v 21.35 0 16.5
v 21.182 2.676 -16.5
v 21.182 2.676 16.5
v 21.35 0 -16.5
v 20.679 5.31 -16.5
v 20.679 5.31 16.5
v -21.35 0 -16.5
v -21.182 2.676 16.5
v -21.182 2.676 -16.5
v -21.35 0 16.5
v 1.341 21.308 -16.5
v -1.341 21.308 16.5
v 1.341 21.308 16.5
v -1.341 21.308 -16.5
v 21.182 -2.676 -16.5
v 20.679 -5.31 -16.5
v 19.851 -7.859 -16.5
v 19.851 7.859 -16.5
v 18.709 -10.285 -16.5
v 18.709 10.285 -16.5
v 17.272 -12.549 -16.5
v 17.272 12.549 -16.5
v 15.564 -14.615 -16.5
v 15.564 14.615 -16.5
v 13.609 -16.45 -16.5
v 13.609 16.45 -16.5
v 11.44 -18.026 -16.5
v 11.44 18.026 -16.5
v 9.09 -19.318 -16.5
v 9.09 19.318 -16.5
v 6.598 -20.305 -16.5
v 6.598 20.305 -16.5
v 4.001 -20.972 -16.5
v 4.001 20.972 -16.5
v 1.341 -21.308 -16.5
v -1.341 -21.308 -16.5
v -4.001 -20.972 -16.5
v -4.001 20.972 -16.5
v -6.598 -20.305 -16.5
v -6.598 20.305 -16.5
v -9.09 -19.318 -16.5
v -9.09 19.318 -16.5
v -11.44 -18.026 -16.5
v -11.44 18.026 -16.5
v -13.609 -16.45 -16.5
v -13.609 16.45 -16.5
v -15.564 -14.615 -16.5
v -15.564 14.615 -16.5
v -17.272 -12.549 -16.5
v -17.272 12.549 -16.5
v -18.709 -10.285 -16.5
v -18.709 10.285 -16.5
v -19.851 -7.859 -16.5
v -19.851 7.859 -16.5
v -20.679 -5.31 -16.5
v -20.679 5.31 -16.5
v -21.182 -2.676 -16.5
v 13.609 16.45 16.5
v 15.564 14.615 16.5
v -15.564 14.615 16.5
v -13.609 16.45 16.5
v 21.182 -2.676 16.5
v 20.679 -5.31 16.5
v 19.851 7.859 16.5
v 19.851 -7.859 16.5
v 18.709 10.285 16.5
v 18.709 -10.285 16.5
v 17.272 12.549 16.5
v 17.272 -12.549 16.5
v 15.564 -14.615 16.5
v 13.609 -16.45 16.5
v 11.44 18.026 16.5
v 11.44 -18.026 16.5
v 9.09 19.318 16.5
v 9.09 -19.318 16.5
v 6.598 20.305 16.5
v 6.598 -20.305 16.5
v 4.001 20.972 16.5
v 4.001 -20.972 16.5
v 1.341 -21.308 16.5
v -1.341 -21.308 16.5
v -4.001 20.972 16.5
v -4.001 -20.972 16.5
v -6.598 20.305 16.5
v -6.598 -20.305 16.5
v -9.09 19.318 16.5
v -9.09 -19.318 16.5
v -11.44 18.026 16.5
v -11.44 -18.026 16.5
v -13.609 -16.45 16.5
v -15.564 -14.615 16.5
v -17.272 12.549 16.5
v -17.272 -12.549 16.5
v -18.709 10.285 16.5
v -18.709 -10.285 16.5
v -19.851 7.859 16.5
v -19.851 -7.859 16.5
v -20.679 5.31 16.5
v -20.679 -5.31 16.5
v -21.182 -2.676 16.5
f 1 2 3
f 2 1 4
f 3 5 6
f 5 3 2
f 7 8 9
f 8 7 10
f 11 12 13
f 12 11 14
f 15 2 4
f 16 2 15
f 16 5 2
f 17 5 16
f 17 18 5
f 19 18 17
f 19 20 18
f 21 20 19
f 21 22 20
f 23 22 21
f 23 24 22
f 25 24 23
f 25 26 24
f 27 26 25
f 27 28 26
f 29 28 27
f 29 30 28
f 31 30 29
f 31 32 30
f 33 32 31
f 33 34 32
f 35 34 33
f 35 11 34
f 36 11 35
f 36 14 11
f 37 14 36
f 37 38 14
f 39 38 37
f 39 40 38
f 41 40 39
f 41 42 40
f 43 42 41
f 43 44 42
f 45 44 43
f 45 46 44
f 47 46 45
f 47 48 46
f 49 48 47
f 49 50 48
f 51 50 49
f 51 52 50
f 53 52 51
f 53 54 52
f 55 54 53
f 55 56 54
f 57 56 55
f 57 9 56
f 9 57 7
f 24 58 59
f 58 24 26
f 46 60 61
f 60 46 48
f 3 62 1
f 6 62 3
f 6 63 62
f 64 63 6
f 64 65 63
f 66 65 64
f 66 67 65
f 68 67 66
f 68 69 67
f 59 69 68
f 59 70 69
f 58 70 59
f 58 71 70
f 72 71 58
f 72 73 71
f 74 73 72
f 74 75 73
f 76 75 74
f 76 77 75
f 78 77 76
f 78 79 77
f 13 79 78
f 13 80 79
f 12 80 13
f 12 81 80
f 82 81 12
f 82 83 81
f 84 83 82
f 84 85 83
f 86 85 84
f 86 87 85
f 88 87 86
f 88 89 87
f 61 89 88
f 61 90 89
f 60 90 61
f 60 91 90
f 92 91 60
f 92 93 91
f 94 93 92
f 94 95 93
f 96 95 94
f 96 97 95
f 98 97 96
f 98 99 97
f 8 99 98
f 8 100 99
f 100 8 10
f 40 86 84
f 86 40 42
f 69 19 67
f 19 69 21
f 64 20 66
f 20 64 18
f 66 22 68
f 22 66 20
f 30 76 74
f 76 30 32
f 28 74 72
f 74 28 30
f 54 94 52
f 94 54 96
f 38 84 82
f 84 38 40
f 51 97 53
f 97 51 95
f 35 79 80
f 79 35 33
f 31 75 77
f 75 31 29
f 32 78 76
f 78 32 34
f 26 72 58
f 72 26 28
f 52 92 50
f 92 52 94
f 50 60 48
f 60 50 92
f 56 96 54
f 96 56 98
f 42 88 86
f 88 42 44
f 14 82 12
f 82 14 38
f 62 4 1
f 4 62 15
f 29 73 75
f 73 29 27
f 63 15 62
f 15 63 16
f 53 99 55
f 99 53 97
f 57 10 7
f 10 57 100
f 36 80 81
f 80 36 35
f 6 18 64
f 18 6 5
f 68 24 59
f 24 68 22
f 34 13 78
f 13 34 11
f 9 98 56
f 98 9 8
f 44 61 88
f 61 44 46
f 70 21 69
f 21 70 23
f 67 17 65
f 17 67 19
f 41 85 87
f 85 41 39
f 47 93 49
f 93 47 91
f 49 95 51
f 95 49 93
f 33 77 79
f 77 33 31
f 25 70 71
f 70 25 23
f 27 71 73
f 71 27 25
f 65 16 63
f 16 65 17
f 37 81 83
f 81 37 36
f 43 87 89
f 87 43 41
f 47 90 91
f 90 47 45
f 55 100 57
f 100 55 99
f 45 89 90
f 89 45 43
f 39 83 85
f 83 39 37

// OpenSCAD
$fn = 50;


difference() {
	union() {
		translate(v = [0, 0, -16.5000000000]) {
			cylinder(h = 33, r = 21.3500000000);
		}
	}
	union() {
		translate(v = [0, 0, -100.0000000000]) {
			cylinder(h = 200, r = 0);
		}
	}
}
